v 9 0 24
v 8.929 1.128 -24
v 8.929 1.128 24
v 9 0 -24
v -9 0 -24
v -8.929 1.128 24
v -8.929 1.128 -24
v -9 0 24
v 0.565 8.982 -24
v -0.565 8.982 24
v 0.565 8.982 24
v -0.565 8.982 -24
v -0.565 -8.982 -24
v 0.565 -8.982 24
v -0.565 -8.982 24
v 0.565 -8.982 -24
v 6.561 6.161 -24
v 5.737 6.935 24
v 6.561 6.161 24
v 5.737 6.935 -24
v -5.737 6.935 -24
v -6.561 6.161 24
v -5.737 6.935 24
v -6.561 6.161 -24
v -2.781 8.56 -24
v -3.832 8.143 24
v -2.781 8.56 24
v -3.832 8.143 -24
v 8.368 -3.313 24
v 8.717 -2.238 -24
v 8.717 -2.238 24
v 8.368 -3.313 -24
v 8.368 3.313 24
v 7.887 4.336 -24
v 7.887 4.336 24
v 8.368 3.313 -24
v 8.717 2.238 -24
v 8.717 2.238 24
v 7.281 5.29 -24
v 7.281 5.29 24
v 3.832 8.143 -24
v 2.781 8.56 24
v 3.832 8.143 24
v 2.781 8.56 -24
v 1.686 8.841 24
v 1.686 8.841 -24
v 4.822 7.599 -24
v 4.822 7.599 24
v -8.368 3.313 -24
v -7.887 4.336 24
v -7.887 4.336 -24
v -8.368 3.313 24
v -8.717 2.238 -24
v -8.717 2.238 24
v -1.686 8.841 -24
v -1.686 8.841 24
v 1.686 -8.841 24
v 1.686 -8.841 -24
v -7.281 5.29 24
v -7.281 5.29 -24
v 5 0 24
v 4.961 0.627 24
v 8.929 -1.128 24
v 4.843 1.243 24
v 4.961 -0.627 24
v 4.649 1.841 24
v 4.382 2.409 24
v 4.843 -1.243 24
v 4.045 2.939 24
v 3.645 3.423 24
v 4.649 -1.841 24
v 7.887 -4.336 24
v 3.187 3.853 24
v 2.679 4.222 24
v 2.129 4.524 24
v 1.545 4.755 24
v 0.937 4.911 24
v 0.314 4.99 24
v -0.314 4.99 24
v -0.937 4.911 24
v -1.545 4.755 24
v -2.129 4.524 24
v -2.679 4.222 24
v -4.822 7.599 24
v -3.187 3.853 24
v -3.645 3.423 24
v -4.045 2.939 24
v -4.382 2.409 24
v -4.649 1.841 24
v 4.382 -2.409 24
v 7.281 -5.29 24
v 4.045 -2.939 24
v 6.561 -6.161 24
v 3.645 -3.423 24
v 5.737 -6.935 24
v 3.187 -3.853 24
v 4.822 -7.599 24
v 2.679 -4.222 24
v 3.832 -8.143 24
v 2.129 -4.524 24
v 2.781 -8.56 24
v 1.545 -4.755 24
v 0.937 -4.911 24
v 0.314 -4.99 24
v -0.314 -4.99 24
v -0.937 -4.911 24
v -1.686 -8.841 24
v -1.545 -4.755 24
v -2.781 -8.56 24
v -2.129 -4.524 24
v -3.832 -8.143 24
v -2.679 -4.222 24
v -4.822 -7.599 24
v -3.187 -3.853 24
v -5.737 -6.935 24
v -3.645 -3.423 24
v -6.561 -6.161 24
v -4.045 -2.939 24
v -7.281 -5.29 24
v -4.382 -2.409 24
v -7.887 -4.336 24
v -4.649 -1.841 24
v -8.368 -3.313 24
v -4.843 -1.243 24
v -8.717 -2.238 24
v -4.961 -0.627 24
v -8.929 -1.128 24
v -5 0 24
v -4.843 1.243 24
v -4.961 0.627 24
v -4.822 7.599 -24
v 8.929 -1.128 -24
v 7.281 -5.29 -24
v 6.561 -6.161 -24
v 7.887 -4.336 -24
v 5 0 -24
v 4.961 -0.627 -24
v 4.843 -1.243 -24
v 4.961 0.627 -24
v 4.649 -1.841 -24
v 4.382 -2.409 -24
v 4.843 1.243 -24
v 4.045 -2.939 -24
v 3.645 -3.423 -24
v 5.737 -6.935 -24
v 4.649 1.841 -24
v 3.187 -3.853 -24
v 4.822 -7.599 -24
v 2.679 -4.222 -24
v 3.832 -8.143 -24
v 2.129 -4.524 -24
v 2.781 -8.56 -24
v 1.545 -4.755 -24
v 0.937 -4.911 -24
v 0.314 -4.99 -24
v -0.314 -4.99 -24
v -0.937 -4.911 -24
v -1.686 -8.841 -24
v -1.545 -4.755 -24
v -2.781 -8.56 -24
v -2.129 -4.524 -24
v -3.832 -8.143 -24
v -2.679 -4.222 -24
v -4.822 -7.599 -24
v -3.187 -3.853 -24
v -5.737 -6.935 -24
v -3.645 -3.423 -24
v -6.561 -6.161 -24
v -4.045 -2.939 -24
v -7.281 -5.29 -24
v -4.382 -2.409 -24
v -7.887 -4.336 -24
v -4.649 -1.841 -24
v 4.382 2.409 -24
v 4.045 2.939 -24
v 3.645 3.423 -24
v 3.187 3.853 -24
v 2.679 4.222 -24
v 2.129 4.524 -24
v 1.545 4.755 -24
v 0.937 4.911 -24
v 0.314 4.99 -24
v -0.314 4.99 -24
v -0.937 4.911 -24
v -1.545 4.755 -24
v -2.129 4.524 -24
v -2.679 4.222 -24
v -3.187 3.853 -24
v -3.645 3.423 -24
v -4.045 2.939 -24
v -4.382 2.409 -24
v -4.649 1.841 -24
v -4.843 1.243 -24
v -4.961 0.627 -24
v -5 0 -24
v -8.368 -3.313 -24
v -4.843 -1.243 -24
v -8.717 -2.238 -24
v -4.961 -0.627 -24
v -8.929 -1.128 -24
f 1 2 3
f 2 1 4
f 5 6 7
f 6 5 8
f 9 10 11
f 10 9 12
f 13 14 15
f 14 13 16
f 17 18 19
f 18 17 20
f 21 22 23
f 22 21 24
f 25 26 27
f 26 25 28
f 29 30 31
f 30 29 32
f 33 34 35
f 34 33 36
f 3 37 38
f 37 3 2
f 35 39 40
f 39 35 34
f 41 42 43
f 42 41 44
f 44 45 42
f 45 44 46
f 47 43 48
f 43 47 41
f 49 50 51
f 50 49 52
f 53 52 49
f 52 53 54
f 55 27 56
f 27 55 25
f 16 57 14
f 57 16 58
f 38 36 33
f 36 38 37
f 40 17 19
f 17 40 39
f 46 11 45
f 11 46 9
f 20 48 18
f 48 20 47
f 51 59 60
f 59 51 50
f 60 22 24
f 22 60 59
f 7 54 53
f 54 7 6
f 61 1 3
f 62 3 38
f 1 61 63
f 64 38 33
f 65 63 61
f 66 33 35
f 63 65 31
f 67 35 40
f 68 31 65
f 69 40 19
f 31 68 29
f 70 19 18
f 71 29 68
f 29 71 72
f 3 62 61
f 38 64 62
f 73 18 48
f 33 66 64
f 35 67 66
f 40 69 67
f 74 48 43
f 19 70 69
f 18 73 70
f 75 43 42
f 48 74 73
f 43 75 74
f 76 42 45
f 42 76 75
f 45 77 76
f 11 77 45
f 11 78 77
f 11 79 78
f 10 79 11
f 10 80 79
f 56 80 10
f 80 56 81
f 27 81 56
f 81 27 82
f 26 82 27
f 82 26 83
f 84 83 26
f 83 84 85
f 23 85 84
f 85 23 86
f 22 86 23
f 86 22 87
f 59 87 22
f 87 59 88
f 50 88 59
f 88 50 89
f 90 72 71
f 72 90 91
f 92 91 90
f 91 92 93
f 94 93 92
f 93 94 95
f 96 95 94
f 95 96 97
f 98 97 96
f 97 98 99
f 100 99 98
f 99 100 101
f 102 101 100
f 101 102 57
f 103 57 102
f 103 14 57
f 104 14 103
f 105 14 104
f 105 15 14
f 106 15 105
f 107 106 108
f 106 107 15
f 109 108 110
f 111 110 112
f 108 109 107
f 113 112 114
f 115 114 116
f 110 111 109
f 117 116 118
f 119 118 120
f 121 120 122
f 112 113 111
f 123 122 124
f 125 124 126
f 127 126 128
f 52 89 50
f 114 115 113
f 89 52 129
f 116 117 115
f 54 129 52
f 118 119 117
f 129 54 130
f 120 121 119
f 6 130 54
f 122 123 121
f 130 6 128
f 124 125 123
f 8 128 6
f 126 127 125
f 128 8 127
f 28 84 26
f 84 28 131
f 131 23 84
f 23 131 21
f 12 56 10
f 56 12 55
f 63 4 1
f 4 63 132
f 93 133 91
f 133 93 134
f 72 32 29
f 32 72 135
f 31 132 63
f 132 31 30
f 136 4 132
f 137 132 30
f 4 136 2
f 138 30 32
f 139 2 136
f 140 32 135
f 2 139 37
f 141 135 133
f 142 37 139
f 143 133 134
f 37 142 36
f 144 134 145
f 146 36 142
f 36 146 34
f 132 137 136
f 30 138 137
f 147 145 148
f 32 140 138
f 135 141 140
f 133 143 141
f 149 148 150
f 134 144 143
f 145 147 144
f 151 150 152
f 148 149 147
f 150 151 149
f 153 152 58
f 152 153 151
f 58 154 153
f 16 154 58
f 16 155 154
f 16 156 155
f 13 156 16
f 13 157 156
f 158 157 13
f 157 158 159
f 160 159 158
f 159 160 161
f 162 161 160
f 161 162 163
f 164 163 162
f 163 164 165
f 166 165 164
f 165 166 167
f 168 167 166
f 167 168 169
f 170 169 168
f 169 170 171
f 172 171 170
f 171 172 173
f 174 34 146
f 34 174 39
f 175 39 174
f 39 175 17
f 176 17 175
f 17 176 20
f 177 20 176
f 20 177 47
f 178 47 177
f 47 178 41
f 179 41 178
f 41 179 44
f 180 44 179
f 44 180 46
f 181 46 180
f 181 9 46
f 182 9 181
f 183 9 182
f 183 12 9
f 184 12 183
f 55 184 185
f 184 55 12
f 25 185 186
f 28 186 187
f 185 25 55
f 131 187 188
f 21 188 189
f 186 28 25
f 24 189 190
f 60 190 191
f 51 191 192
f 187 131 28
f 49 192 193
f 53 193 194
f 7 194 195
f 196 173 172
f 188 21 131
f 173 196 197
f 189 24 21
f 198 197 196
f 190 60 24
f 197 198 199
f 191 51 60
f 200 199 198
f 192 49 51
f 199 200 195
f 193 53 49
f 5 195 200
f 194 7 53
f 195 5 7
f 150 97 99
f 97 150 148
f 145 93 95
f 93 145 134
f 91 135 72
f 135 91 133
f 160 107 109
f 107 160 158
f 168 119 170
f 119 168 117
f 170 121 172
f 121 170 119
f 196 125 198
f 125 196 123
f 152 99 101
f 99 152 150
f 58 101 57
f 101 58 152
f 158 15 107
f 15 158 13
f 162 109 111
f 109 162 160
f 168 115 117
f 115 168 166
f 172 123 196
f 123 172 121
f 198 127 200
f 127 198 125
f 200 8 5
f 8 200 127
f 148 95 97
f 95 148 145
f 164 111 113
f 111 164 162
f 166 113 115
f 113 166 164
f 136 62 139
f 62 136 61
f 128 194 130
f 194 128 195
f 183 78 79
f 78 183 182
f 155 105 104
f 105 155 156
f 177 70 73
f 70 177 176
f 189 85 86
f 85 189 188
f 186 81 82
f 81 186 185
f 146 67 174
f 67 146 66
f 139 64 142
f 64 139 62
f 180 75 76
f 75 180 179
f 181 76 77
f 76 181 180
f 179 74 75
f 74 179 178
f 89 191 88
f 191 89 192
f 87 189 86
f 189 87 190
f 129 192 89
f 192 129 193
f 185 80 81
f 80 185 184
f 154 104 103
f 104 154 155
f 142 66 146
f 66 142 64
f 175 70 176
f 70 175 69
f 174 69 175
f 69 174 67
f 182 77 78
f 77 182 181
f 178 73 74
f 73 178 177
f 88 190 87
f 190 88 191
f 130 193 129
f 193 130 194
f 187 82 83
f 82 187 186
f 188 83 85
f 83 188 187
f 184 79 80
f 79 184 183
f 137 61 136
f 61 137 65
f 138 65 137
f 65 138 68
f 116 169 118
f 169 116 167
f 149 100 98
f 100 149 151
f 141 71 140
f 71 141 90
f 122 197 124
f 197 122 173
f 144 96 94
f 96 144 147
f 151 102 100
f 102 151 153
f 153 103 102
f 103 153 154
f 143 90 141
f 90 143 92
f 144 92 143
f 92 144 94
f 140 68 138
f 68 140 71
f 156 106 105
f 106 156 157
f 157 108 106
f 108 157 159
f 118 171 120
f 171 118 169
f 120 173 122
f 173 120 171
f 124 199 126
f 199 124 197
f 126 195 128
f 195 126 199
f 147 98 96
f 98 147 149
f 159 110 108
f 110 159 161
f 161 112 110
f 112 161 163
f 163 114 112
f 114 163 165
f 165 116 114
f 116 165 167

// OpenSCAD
$fn = 50;


difference() {
	union() {
		translate(v = [0, 0, -24.0000000000]) {
			cylinder(h = 48, r = 9.0000000000);
		}
	}
	union() {
		translate(v = [0, 0, -100.0000000000]) {
			cylinder(h = 200, r = 5.0000000000);
		}
	}
}
